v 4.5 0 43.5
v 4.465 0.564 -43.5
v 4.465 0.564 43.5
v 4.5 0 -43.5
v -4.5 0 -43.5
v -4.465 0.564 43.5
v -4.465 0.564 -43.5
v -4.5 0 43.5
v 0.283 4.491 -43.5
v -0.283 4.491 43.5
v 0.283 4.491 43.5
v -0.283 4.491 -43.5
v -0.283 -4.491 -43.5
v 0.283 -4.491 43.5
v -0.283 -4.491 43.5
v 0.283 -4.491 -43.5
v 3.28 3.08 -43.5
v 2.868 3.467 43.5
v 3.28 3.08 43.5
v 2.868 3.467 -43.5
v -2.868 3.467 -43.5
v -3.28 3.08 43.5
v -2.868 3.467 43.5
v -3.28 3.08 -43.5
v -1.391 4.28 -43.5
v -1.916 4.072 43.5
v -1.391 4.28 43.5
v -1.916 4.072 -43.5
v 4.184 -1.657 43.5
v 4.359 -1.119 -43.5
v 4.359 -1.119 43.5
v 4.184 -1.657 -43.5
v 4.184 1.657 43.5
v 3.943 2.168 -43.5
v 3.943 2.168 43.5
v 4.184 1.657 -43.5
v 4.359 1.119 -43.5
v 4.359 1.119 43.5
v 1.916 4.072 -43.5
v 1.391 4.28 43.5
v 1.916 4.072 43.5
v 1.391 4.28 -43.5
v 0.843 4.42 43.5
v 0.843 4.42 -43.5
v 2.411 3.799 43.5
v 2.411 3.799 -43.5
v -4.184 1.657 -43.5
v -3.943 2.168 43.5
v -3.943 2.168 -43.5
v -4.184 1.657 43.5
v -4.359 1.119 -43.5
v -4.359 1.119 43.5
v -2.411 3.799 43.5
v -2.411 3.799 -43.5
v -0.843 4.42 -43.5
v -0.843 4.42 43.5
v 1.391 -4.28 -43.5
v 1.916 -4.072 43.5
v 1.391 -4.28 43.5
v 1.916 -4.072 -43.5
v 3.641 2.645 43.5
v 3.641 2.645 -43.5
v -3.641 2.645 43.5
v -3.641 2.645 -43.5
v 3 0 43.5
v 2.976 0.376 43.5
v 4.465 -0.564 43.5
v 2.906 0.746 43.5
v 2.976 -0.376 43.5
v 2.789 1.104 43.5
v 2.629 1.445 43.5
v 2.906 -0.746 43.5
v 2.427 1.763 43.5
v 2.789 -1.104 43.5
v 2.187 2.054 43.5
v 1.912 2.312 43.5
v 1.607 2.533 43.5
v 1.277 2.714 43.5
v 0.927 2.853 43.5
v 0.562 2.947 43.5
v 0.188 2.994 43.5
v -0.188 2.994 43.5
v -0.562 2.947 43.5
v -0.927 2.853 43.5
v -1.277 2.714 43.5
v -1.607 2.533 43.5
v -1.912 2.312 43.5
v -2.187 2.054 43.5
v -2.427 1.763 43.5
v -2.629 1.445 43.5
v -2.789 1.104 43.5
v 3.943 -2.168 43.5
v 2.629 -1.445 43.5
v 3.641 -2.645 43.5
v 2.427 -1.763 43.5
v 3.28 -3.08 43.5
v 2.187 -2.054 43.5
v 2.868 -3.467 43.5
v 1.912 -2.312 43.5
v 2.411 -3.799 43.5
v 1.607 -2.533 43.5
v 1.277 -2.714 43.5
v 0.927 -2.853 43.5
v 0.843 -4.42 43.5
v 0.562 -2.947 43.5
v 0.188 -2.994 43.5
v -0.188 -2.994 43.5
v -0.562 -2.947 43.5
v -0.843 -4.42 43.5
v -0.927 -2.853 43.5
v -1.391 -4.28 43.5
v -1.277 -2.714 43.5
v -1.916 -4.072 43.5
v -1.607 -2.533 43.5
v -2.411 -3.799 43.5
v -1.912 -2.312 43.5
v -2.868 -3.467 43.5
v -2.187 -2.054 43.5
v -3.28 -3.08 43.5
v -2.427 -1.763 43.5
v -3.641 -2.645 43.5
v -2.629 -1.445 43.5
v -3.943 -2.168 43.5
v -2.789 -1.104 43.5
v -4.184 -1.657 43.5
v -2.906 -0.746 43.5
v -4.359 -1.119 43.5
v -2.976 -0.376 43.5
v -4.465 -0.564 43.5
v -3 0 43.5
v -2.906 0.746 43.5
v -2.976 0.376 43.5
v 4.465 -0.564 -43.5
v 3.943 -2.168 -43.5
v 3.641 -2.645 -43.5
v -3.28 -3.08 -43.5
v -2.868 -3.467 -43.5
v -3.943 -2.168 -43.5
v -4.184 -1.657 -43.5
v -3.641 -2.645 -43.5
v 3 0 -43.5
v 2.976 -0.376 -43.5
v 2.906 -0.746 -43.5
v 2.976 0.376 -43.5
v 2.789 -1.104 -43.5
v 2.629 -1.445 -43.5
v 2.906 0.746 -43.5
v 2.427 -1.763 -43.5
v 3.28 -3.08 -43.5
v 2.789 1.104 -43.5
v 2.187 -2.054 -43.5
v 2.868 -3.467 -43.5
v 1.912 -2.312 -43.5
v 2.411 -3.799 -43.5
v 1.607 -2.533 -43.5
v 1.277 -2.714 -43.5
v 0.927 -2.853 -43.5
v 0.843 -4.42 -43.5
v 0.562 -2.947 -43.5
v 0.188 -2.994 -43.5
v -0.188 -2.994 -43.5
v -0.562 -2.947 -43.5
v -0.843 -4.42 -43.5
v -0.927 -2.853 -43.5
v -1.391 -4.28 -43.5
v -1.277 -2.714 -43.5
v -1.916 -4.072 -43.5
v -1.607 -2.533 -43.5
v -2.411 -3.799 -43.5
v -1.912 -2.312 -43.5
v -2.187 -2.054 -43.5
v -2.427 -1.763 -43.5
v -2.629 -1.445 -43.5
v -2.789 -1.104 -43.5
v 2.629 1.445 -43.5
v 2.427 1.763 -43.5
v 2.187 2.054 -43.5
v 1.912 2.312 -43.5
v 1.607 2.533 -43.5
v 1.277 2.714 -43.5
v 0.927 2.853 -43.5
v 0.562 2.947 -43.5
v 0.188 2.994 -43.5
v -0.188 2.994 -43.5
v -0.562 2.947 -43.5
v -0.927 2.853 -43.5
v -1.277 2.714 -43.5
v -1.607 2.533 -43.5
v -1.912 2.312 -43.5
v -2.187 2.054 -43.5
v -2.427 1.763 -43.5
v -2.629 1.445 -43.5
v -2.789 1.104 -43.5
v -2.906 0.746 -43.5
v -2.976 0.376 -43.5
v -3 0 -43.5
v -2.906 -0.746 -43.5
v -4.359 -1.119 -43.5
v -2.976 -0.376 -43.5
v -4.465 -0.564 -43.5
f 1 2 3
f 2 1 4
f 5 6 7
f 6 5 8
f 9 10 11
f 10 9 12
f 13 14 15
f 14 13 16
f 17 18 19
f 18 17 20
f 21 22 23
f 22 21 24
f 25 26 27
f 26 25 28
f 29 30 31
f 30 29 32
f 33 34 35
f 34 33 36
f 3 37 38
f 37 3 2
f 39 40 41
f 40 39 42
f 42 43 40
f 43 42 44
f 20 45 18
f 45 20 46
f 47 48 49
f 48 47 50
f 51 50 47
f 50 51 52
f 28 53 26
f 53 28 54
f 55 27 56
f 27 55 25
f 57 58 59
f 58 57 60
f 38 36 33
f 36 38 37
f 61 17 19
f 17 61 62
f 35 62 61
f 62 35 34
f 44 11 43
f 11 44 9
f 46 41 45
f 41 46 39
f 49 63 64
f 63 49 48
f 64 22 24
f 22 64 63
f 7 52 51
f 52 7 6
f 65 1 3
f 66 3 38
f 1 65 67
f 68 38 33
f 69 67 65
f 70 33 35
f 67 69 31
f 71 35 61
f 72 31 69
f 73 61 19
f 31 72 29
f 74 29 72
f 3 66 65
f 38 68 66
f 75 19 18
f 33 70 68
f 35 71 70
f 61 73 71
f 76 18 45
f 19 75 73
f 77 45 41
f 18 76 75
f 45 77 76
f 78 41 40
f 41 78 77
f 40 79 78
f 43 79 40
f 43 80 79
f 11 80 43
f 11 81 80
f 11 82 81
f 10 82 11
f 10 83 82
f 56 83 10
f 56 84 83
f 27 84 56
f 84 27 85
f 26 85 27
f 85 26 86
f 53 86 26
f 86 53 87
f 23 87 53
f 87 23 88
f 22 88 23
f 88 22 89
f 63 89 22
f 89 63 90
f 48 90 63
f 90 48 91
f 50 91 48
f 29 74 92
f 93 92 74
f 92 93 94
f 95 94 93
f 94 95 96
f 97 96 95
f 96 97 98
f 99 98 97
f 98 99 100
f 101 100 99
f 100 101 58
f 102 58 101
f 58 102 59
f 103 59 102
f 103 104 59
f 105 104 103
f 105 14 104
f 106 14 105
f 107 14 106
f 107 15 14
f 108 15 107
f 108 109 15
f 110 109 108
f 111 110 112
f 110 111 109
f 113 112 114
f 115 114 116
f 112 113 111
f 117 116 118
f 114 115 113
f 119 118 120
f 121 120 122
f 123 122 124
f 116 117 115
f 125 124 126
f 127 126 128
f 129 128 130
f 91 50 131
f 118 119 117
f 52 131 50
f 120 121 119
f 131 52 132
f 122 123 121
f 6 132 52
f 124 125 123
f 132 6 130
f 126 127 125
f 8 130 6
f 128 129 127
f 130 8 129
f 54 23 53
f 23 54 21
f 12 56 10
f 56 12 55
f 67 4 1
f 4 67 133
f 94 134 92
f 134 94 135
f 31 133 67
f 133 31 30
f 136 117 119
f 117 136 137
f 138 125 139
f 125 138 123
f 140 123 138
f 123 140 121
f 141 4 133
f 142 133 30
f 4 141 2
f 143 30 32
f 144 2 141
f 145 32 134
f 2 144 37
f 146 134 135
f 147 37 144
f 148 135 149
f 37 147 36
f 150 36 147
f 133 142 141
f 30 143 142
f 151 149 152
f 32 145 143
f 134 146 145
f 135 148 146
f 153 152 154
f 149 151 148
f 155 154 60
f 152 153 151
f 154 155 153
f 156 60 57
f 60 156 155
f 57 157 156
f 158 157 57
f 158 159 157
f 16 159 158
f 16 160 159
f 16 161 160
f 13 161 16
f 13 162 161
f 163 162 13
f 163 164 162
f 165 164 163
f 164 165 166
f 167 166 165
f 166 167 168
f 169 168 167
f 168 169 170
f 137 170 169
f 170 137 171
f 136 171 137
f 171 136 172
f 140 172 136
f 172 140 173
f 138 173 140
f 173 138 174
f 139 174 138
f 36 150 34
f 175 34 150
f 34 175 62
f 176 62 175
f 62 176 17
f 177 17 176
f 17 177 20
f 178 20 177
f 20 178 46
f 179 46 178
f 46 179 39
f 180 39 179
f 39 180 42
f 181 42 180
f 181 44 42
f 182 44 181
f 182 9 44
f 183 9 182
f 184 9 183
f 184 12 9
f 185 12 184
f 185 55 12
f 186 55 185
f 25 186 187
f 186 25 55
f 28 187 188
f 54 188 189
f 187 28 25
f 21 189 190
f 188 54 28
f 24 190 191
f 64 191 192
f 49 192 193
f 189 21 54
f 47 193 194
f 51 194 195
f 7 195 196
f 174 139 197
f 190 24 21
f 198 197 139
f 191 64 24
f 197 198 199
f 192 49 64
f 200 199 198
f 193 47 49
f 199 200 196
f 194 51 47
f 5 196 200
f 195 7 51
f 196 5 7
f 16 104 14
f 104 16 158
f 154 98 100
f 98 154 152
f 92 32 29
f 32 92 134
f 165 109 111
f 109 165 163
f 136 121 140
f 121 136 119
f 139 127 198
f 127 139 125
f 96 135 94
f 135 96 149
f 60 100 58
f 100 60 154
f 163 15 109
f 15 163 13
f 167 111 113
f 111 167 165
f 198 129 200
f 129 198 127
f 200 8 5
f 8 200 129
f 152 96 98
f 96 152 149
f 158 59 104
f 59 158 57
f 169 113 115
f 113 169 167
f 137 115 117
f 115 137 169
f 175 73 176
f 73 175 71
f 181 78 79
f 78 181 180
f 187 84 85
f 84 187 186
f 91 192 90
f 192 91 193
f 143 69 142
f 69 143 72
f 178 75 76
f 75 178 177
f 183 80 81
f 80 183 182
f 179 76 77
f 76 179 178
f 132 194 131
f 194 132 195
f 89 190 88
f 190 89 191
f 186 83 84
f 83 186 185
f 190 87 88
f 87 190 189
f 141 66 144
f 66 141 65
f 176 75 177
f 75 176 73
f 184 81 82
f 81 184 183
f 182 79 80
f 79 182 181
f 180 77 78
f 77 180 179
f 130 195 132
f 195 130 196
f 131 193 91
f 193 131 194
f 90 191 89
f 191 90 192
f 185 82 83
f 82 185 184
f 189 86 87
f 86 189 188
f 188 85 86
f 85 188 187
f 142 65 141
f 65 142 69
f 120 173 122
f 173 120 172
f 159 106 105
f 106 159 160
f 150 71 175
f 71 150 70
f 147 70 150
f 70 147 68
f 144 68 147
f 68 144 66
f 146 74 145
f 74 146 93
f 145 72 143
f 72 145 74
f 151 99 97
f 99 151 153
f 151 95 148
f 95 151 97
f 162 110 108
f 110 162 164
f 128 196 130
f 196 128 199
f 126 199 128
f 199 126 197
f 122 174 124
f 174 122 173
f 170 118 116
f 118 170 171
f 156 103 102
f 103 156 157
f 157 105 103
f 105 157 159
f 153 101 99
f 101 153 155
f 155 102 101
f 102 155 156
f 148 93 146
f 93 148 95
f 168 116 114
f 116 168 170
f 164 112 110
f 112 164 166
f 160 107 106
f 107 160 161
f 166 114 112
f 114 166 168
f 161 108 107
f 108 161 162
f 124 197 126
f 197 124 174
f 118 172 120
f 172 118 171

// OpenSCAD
$fn = 50;


difference() {
	union() {
		translate(v = [0, 0, -43.5000000000]) {
			cylinder(h = 87, r = 4.5000000000);
		}
	}
	union() {
		translate(v = [0, 0, -100.0000000000]) {
			cylinder(h = 200, r = 3);
		}
	}
}
